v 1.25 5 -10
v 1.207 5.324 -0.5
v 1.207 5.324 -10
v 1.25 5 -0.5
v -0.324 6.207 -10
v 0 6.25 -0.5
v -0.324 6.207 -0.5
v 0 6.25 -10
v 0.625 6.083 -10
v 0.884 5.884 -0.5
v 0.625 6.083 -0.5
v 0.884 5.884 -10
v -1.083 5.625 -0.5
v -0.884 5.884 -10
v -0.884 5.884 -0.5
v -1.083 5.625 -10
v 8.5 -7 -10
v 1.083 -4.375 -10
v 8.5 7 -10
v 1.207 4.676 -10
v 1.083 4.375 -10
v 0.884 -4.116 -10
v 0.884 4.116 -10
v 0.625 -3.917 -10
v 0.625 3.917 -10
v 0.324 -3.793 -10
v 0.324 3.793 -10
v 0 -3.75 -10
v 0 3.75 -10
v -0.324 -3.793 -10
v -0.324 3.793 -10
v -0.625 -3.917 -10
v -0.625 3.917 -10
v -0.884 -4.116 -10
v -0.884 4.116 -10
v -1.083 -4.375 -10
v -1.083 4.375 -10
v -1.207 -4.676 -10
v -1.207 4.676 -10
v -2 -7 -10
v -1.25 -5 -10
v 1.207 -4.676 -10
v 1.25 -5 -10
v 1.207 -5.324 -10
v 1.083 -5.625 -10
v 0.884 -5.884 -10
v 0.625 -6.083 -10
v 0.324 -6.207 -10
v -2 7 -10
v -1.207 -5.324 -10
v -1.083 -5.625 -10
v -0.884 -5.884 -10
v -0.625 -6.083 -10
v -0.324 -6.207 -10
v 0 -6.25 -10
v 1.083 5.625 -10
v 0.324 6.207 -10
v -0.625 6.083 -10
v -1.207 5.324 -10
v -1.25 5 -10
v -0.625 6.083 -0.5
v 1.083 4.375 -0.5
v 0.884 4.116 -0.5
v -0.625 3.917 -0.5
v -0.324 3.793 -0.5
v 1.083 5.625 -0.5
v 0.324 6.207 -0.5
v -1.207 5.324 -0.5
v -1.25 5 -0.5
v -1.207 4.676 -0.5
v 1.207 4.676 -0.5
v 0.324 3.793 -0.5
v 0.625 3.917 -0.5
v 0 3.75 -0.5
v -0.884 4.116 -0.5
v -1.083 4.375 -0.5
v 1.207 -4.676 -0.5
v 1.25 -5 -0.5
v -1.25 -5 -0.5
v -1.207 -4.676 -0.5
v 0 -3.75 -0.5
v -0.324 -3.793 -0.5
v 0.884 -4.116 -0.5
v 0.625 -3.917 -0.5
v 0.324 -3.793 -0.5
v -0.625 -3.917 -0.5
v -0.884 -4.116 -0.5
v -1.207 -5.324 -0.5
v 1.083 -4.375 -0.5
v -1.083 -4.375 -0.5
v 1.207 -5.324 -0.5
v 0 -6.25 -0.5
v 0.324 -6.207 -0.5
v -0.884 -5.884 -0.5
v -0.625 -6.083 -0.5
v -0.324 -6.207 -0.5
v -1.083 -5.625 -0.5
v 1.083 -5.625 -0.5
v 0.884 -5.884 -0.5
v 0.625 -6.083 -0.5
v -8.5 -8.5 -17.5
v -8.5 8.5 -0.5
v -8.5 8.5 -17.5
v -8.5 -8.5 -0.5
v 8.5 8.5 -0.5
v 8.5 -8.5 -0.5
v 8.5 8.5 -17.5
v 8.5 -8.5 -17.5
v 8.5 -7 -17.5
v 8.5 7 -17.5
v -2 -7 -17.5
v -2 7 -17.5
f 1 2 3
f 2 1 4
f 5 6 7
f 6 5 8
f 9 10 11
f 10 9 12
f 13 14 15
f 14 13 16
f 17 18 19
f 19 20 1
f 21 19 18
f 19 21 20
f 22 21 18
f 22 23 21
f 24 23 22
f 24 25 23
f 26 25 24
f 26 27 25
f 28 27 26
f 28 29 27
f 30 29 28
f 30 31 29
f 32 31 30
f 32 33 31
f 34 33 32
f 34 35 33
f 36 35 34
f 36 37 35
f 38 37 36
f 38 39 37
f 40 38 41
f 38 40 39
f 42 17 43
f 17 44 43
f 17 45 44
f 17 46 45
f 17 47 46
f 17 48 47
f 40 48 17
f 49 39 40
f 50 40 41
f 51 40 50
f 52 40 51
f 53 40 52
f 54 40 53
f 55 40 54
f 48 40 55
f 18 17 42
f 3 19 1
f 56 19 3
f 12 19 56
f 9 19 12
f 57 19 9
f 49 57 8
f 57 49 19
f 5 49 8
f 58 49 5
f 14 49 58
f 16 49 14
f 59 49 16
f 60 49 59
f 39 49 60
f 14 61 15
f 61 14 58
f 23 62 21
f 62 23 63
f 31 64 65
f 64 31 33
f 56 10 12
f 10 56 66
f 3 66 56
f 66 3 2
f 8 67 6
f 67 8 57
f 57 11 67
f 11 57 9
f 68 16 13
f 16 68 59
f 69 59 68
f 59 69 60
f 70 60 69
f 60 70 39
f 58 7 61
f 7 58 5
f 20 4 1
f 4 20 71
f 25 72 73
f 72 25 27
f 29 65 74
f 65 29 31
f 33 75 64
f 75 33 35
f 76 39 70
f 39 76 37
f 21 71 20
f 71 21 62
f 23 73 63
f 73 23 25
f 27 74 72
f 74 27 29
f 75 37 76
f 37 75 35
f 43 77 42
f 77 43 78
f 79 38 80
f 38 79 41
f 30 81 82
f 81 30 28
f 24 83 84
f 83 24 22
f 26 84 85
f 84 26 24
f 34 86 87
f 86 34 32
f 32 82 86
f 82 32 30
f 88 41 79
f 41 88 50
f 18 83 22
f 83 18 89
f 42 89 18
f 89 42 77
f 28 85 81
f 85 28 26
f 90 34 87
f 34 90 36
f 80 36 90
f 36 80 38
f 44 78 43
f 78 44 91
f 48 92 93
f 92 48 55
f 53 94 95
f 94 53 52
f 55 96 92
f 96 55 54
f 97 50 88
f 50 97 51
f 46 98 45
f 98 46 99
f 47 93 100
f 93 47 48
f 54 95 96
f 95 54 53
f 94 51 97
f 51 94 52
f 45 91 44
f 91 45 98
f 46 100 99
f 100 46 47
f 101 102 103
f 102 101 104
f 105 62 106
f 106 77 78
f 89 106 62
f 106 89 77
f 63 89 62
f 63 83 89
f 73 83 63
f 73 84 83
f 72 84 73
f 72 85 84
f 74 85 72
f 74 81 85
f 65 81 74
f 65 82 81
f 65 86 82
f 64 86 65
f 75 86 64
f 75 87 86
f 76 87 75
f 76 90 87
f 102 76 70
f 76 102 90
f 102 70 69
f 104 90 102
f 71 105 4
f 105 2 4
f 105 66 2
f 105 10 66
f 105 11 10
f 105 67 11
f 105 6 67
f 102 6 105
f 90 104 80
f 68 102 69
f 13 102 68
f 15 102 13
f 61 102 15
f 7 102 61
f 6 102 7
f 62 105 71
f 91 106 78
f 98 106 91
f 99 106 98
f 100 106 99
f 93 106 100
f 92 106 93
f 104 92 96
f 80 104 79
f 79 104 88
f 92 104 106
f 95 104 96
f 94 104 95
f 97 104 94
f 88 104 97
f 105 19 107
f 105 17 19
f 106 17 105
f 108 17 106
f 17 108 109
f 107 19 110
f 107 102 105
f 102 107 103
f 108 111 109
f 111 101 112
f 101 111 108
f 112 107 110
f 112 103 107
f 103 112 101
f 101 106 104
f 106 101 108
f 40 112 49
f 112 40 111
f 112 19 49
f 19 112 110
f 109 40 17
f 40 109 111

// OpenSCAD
// file: src/settings.scad
$fn=128;
// $fudge factor used strategically to eliminate crosshatching in previews without actually introducing extra play
$fudge = 0.01;

// standing nodes are made every half wavelength, so it's probably pertinent that the
// inner radius be a multiple of that
$half_wavelength = 4.68541666667;


// radius of inner sphere
$radius = $half_wavelength * 22;
// $thickness of sphere wall
$thickness = 5;

// the sphere is "cut off" - has a chunk missing - in the middle. how much is determined by this angle and some napkin trig
$end_angle = 33.109;

// how many transducers in the first ring
$start_number = 6;

// variables for the casing

$lip = 5;
$extra_room_underneath = 10;
$wall_thickness = 2;
$lip_thickness = 4;


// transducer settings

// 0.25 is slop for the transducers. 0.2 can sometimes yield a press fit
$transducer_diameter = 16 + 0.25;
$transducer_height = 12;
$transducer_leg_diameter = 2.5; // really 1mm but don't wanna skimp
$transducer_leg_separation_radius = 10 / 2;
$transducer_leg_height = 10;
$transducer_inset = 1;

// calc'ed variables
function inner_radius() = $radius;
function middle_radius() = inner_radius() + $transducer_height - $transducer_inset;
function outer_radius() = middle_radius() + $thickness;
// functions

// how far down the well is
function well_z(hypotenuse, angle) = cos(angle) * hypotenuse;
// how deep the well of transducers is
function well_depth(hypotenuse, angle) = hypotenuse - well_z(hypotenuse, angle);
// radius of the well of transducers
function well_radius(hypotenuse, angle) = sin(angle) * hypotenuse;

// what radius of circle can I place n circles of diameter d on so that they just barely don't touch?
function radius_for_circles(d, n) = 1 / (sin(180 / n)) * d / 2;
// how many circles of diameter d could fit on another circle of radius r without touching each other?
function circles_for_circumscribed_radius(r, d) = round(360 / (asin((d / 2) / r) * 2));

// if I have a chord with radius chord_r in a sphere of size r, if I were to draw a line from the bottom to the center, and then from the chord to the center, what would the angle be?
function angle_for_chord_radius(chord_r, r) = asin(chord_r / r);
// if I know the angle of a chord in a sphere, what is the chord's radius?
function chord_radius_for_angle(angle, radius) = sin(angle) * radius;
// given a side length r, what is the internal angle of the regular polygon that circumscribes that circle?
function circumscription_angle(r, s) = atan(s / 2 / r) * 2;

module transducer_placement(radius, rotation=[], inset=$transducer_inset) {
  rotate(rotation) translate([0,0,-radius - inset]) rotate(90) children();
}
// file: src/case.scad
include <lev.scad>

module sponson(radius, shift=0) {
  rad = well_radius(radius, $end_angle) + $lip + $wall_thickness;
  height = well_z(middle_radius(), $end_angle); // TODO magic numbers everywhere and no idea why

  difference() {
    cylinder(r=rad, h=height);
    // cutoff cube
    translate([-outer_radius()*2, -well_radius(outer_radius(), $end_angle)-shift, -$fudge]) cube(outer_radius()*4);
    /* %translate([-outer_radius()*2, -well_radius(outer_radius(), $end_angle), -$fudge]) cube(outer_radius()*4); */
  }
}

module outside() {

  sponson_z = -well_z(outer_radius(), $end_angle) + $lip_thickness;


  difference() {
    // outer cylinder
    union() {
      difference() {
        translate([0,0,-outer_radius() - $extra_room_underneath]) {
          rad = well_radius(outer_radius(),$end_angle) + $lip + $wall_thickness;
          height = well_depth(outer_radius(),$end_angle) + $extra_room_underneath + $thickness;
          cylinder(r=rad, h=height-.81);
        }
        // inner cylinder
        translate([0,0,-outer_radius() - $extra_room_underneath - $fudge]) {
          rad = well_radius(outer_radius(),$end_angle)+$lip;
          height = well_depth(outer_radius(),$end_angle) + $extra_room_underneath - $lip_thickness + $fudge + $thickness;
          cylinder(r=rad, h=height);
        }
        // standin for lev
        cone_of_silence(1);
      }

      translate([0,0,sponson_z]) {
        sponson(outer_radius());
        rotate(180) sponson(outer_radius());
      }

    }

    // makes sure the opening to the acoustic sphere is at least vertical
    translate([0,0,-well_z(middle_radius(), $end_angle)]) cylinder(r=well_radius(middle_radius(), $end_angle), h=$lip_thickness);

    // inner sponson on right side
    rotate([0,0,180]) scale([1,1,3]) {
      translate([0,0,sponson_z+1]){
          sponson(middle_radius(), 1);
        }
    }

    // used to have hole for other sponson
    /* translate([-middle_radius(),well_radius(outer_radius(), $end_angle),sponson_z]){
      %cube(middle_radius()*2);
    } */

    // inner sponson on left side
    scale([1,1,3]) {
      translate([0, 0,sponson_z+1]) sponson(middle_radius(), 1);
    }

    scale([0.75,0.75, 1]) {
      /* translate([0,-well_radius(outer_radius(), $end_angle) * 0.75 / 2,0]) %sponson(); */
    }
  }
}
// file: src/lev.scad
include <settings.scad>

module transducers_for(angle_adjustment=0, transducer_increment=undef) {
  // what radius gets us the number of starting circles we want
  start_chord_radius = radius_for_circles($transducer_diameter, $start_number);
  check = circles_for_circumscribed_radius(start_chord_radius, $transducer_diameter);

  echo("check: ", check);
  // what angle that radius is at
  start_angle = angle_for_chord_radius(start_chord_radius, inner_radius()) - angle_adjustment; // may have to adjust
  // how much we have to rotate the next row on the y axis before it's guaranteed not to collide with the row below
  angle_increment = circumscription_angle(inner_radius(), $transducer_diameter);

  echo("start chord radius: ",start_chord_radius);
  echo("start angle: ", start_angle);
  echo("start number:", $start_number);

  check2 = chord_radius_for_angle(start_angle, inner_radius());
  echo("check2: ", check2);


  // TODO the end angle is wrong and I don't know why
  // If you're digging in the code wondering why transducer placement isn't
  // ideal for your setup, this is a good place to fiddle
  for (angle = [start_angle:angle_increment:($end_angle - angle_increment/2)]) {
    index = (angle - start_angle) / angle_increment;
    // find the radius of the chord of the circle at our angle of inclination,
    // which corresponds to the radius of the circle we wish to "circumscribe"
    chord_radius = chord_radius_for_angle(angle, inner_radius());

    // find out how many circles we can fit on that radius
    circles_this_slice = transducer_increment ?
      $start_number + index * transducer_increment :
      circles_for_circumscribed_radius(chord_radius, $transducer_diameter);

    echo ("----------------------");
    echo("index: ", index);
    echo("chord_radius: ", chord_radius);
    echo("number: ", circles_this_slice);

    for (y = [0:circles_this_slice]) {
      // put em there duh
      transducer_placement(middle_radius(), [0, angle, 360 / circles_this_slice * y]) {
        children();
      }
    }
  }
}

module cone_of_silence(multiplier = 2) {
  height = (outer_radius() - well_depth(outer_radius(), $end_angle)) * multiplier;

  translate([0,0,-height]) cylinder(d2 = 1, r1 = chord_radius_for_angle($end_angle, outer_radius())*multiplier, h=height);
  /* translate([0,0,well_depth(outer_radius(),$end_angle)]) cube(outer_radius()*2, center = true); */
}

module outer_sphere() {
  intersection() {
    difference() {
      sphere(outer_radius());
      sphere(middle_radius());
    }

    cone_of_silence(100);
  }
}

module no_go_zone() {
  difference() {
    sphere(inner_radius());
    translate([0, 0, well_depth(inner_radius(), $end_angle)]) cube((inner_radius()) * 2, center = true);
  }
}

module lev(angle_adjustment=0) {
  /* rotate([0,$end_angle,0]) translate([0,0,-100]) cube([1,1,200], center = true); */
  difference() {
    outer_sphere();
    transducers_for(angle_adjustment){
      transducer();
    }
  }
  transducers_for(angle_adjustment){
    /* %transducer(fn=24); */
    /* %transducer(middle_radius()+1, 0, 24); */
  };

  // no-go zone
  /* %color([1,0,0,0.3]) no_go_zone(); */
}
// file: src/transducer.scad
include <settings.scad>

module transducer(height = $transducer_height, d2=$transducer_diameter, fn=$fn) {
  cylinder(d=$transducer_diameter, d2=d2, h=height, $fn=fn);
  translate([0, $transducer_leg_separation_radius, -$transducer_leg_height]) {
    cylinder(h=$transducer_leg_height + $fudge, d=$transducer_leg_diameter, $fn=24);
  }
  translate([0, -$transducer_leg_separation_radius, -$transducer_leg_height]) {
    cylinder(h=$transducer_leg_height + $fudge, d=$transducer_leg_diameter, $fn=24);
  }
}
// main file
include <src/transducer.scad>
include <src/lev.scad>
include <src/case.scad>

union(){
  /* translate([0,0,0]) lev();
  outside(); */
  /* translate([0,0,40]) cube(20, center = true); */
  /* translate([0,-500, 0]) cube(1000); */
}


/* translate([0,0,-middle_radius()+22]) %cylinder(r=well_radius(middle_radius(), $end_angle)); */
// no idea why +1. really need to figure this out
/* translate([0,0,-$lip_thickness+1]) rotate(0) mirror([0,1,0]) {

  outside();
  lev();

} */
difference() {
  translate([0,0,-9]) cube(17, center=true);
  transducer(d2=$transducer_diameter + 1);
  translate([5,0,-14]) cube([14,14,8], center = true);
}
